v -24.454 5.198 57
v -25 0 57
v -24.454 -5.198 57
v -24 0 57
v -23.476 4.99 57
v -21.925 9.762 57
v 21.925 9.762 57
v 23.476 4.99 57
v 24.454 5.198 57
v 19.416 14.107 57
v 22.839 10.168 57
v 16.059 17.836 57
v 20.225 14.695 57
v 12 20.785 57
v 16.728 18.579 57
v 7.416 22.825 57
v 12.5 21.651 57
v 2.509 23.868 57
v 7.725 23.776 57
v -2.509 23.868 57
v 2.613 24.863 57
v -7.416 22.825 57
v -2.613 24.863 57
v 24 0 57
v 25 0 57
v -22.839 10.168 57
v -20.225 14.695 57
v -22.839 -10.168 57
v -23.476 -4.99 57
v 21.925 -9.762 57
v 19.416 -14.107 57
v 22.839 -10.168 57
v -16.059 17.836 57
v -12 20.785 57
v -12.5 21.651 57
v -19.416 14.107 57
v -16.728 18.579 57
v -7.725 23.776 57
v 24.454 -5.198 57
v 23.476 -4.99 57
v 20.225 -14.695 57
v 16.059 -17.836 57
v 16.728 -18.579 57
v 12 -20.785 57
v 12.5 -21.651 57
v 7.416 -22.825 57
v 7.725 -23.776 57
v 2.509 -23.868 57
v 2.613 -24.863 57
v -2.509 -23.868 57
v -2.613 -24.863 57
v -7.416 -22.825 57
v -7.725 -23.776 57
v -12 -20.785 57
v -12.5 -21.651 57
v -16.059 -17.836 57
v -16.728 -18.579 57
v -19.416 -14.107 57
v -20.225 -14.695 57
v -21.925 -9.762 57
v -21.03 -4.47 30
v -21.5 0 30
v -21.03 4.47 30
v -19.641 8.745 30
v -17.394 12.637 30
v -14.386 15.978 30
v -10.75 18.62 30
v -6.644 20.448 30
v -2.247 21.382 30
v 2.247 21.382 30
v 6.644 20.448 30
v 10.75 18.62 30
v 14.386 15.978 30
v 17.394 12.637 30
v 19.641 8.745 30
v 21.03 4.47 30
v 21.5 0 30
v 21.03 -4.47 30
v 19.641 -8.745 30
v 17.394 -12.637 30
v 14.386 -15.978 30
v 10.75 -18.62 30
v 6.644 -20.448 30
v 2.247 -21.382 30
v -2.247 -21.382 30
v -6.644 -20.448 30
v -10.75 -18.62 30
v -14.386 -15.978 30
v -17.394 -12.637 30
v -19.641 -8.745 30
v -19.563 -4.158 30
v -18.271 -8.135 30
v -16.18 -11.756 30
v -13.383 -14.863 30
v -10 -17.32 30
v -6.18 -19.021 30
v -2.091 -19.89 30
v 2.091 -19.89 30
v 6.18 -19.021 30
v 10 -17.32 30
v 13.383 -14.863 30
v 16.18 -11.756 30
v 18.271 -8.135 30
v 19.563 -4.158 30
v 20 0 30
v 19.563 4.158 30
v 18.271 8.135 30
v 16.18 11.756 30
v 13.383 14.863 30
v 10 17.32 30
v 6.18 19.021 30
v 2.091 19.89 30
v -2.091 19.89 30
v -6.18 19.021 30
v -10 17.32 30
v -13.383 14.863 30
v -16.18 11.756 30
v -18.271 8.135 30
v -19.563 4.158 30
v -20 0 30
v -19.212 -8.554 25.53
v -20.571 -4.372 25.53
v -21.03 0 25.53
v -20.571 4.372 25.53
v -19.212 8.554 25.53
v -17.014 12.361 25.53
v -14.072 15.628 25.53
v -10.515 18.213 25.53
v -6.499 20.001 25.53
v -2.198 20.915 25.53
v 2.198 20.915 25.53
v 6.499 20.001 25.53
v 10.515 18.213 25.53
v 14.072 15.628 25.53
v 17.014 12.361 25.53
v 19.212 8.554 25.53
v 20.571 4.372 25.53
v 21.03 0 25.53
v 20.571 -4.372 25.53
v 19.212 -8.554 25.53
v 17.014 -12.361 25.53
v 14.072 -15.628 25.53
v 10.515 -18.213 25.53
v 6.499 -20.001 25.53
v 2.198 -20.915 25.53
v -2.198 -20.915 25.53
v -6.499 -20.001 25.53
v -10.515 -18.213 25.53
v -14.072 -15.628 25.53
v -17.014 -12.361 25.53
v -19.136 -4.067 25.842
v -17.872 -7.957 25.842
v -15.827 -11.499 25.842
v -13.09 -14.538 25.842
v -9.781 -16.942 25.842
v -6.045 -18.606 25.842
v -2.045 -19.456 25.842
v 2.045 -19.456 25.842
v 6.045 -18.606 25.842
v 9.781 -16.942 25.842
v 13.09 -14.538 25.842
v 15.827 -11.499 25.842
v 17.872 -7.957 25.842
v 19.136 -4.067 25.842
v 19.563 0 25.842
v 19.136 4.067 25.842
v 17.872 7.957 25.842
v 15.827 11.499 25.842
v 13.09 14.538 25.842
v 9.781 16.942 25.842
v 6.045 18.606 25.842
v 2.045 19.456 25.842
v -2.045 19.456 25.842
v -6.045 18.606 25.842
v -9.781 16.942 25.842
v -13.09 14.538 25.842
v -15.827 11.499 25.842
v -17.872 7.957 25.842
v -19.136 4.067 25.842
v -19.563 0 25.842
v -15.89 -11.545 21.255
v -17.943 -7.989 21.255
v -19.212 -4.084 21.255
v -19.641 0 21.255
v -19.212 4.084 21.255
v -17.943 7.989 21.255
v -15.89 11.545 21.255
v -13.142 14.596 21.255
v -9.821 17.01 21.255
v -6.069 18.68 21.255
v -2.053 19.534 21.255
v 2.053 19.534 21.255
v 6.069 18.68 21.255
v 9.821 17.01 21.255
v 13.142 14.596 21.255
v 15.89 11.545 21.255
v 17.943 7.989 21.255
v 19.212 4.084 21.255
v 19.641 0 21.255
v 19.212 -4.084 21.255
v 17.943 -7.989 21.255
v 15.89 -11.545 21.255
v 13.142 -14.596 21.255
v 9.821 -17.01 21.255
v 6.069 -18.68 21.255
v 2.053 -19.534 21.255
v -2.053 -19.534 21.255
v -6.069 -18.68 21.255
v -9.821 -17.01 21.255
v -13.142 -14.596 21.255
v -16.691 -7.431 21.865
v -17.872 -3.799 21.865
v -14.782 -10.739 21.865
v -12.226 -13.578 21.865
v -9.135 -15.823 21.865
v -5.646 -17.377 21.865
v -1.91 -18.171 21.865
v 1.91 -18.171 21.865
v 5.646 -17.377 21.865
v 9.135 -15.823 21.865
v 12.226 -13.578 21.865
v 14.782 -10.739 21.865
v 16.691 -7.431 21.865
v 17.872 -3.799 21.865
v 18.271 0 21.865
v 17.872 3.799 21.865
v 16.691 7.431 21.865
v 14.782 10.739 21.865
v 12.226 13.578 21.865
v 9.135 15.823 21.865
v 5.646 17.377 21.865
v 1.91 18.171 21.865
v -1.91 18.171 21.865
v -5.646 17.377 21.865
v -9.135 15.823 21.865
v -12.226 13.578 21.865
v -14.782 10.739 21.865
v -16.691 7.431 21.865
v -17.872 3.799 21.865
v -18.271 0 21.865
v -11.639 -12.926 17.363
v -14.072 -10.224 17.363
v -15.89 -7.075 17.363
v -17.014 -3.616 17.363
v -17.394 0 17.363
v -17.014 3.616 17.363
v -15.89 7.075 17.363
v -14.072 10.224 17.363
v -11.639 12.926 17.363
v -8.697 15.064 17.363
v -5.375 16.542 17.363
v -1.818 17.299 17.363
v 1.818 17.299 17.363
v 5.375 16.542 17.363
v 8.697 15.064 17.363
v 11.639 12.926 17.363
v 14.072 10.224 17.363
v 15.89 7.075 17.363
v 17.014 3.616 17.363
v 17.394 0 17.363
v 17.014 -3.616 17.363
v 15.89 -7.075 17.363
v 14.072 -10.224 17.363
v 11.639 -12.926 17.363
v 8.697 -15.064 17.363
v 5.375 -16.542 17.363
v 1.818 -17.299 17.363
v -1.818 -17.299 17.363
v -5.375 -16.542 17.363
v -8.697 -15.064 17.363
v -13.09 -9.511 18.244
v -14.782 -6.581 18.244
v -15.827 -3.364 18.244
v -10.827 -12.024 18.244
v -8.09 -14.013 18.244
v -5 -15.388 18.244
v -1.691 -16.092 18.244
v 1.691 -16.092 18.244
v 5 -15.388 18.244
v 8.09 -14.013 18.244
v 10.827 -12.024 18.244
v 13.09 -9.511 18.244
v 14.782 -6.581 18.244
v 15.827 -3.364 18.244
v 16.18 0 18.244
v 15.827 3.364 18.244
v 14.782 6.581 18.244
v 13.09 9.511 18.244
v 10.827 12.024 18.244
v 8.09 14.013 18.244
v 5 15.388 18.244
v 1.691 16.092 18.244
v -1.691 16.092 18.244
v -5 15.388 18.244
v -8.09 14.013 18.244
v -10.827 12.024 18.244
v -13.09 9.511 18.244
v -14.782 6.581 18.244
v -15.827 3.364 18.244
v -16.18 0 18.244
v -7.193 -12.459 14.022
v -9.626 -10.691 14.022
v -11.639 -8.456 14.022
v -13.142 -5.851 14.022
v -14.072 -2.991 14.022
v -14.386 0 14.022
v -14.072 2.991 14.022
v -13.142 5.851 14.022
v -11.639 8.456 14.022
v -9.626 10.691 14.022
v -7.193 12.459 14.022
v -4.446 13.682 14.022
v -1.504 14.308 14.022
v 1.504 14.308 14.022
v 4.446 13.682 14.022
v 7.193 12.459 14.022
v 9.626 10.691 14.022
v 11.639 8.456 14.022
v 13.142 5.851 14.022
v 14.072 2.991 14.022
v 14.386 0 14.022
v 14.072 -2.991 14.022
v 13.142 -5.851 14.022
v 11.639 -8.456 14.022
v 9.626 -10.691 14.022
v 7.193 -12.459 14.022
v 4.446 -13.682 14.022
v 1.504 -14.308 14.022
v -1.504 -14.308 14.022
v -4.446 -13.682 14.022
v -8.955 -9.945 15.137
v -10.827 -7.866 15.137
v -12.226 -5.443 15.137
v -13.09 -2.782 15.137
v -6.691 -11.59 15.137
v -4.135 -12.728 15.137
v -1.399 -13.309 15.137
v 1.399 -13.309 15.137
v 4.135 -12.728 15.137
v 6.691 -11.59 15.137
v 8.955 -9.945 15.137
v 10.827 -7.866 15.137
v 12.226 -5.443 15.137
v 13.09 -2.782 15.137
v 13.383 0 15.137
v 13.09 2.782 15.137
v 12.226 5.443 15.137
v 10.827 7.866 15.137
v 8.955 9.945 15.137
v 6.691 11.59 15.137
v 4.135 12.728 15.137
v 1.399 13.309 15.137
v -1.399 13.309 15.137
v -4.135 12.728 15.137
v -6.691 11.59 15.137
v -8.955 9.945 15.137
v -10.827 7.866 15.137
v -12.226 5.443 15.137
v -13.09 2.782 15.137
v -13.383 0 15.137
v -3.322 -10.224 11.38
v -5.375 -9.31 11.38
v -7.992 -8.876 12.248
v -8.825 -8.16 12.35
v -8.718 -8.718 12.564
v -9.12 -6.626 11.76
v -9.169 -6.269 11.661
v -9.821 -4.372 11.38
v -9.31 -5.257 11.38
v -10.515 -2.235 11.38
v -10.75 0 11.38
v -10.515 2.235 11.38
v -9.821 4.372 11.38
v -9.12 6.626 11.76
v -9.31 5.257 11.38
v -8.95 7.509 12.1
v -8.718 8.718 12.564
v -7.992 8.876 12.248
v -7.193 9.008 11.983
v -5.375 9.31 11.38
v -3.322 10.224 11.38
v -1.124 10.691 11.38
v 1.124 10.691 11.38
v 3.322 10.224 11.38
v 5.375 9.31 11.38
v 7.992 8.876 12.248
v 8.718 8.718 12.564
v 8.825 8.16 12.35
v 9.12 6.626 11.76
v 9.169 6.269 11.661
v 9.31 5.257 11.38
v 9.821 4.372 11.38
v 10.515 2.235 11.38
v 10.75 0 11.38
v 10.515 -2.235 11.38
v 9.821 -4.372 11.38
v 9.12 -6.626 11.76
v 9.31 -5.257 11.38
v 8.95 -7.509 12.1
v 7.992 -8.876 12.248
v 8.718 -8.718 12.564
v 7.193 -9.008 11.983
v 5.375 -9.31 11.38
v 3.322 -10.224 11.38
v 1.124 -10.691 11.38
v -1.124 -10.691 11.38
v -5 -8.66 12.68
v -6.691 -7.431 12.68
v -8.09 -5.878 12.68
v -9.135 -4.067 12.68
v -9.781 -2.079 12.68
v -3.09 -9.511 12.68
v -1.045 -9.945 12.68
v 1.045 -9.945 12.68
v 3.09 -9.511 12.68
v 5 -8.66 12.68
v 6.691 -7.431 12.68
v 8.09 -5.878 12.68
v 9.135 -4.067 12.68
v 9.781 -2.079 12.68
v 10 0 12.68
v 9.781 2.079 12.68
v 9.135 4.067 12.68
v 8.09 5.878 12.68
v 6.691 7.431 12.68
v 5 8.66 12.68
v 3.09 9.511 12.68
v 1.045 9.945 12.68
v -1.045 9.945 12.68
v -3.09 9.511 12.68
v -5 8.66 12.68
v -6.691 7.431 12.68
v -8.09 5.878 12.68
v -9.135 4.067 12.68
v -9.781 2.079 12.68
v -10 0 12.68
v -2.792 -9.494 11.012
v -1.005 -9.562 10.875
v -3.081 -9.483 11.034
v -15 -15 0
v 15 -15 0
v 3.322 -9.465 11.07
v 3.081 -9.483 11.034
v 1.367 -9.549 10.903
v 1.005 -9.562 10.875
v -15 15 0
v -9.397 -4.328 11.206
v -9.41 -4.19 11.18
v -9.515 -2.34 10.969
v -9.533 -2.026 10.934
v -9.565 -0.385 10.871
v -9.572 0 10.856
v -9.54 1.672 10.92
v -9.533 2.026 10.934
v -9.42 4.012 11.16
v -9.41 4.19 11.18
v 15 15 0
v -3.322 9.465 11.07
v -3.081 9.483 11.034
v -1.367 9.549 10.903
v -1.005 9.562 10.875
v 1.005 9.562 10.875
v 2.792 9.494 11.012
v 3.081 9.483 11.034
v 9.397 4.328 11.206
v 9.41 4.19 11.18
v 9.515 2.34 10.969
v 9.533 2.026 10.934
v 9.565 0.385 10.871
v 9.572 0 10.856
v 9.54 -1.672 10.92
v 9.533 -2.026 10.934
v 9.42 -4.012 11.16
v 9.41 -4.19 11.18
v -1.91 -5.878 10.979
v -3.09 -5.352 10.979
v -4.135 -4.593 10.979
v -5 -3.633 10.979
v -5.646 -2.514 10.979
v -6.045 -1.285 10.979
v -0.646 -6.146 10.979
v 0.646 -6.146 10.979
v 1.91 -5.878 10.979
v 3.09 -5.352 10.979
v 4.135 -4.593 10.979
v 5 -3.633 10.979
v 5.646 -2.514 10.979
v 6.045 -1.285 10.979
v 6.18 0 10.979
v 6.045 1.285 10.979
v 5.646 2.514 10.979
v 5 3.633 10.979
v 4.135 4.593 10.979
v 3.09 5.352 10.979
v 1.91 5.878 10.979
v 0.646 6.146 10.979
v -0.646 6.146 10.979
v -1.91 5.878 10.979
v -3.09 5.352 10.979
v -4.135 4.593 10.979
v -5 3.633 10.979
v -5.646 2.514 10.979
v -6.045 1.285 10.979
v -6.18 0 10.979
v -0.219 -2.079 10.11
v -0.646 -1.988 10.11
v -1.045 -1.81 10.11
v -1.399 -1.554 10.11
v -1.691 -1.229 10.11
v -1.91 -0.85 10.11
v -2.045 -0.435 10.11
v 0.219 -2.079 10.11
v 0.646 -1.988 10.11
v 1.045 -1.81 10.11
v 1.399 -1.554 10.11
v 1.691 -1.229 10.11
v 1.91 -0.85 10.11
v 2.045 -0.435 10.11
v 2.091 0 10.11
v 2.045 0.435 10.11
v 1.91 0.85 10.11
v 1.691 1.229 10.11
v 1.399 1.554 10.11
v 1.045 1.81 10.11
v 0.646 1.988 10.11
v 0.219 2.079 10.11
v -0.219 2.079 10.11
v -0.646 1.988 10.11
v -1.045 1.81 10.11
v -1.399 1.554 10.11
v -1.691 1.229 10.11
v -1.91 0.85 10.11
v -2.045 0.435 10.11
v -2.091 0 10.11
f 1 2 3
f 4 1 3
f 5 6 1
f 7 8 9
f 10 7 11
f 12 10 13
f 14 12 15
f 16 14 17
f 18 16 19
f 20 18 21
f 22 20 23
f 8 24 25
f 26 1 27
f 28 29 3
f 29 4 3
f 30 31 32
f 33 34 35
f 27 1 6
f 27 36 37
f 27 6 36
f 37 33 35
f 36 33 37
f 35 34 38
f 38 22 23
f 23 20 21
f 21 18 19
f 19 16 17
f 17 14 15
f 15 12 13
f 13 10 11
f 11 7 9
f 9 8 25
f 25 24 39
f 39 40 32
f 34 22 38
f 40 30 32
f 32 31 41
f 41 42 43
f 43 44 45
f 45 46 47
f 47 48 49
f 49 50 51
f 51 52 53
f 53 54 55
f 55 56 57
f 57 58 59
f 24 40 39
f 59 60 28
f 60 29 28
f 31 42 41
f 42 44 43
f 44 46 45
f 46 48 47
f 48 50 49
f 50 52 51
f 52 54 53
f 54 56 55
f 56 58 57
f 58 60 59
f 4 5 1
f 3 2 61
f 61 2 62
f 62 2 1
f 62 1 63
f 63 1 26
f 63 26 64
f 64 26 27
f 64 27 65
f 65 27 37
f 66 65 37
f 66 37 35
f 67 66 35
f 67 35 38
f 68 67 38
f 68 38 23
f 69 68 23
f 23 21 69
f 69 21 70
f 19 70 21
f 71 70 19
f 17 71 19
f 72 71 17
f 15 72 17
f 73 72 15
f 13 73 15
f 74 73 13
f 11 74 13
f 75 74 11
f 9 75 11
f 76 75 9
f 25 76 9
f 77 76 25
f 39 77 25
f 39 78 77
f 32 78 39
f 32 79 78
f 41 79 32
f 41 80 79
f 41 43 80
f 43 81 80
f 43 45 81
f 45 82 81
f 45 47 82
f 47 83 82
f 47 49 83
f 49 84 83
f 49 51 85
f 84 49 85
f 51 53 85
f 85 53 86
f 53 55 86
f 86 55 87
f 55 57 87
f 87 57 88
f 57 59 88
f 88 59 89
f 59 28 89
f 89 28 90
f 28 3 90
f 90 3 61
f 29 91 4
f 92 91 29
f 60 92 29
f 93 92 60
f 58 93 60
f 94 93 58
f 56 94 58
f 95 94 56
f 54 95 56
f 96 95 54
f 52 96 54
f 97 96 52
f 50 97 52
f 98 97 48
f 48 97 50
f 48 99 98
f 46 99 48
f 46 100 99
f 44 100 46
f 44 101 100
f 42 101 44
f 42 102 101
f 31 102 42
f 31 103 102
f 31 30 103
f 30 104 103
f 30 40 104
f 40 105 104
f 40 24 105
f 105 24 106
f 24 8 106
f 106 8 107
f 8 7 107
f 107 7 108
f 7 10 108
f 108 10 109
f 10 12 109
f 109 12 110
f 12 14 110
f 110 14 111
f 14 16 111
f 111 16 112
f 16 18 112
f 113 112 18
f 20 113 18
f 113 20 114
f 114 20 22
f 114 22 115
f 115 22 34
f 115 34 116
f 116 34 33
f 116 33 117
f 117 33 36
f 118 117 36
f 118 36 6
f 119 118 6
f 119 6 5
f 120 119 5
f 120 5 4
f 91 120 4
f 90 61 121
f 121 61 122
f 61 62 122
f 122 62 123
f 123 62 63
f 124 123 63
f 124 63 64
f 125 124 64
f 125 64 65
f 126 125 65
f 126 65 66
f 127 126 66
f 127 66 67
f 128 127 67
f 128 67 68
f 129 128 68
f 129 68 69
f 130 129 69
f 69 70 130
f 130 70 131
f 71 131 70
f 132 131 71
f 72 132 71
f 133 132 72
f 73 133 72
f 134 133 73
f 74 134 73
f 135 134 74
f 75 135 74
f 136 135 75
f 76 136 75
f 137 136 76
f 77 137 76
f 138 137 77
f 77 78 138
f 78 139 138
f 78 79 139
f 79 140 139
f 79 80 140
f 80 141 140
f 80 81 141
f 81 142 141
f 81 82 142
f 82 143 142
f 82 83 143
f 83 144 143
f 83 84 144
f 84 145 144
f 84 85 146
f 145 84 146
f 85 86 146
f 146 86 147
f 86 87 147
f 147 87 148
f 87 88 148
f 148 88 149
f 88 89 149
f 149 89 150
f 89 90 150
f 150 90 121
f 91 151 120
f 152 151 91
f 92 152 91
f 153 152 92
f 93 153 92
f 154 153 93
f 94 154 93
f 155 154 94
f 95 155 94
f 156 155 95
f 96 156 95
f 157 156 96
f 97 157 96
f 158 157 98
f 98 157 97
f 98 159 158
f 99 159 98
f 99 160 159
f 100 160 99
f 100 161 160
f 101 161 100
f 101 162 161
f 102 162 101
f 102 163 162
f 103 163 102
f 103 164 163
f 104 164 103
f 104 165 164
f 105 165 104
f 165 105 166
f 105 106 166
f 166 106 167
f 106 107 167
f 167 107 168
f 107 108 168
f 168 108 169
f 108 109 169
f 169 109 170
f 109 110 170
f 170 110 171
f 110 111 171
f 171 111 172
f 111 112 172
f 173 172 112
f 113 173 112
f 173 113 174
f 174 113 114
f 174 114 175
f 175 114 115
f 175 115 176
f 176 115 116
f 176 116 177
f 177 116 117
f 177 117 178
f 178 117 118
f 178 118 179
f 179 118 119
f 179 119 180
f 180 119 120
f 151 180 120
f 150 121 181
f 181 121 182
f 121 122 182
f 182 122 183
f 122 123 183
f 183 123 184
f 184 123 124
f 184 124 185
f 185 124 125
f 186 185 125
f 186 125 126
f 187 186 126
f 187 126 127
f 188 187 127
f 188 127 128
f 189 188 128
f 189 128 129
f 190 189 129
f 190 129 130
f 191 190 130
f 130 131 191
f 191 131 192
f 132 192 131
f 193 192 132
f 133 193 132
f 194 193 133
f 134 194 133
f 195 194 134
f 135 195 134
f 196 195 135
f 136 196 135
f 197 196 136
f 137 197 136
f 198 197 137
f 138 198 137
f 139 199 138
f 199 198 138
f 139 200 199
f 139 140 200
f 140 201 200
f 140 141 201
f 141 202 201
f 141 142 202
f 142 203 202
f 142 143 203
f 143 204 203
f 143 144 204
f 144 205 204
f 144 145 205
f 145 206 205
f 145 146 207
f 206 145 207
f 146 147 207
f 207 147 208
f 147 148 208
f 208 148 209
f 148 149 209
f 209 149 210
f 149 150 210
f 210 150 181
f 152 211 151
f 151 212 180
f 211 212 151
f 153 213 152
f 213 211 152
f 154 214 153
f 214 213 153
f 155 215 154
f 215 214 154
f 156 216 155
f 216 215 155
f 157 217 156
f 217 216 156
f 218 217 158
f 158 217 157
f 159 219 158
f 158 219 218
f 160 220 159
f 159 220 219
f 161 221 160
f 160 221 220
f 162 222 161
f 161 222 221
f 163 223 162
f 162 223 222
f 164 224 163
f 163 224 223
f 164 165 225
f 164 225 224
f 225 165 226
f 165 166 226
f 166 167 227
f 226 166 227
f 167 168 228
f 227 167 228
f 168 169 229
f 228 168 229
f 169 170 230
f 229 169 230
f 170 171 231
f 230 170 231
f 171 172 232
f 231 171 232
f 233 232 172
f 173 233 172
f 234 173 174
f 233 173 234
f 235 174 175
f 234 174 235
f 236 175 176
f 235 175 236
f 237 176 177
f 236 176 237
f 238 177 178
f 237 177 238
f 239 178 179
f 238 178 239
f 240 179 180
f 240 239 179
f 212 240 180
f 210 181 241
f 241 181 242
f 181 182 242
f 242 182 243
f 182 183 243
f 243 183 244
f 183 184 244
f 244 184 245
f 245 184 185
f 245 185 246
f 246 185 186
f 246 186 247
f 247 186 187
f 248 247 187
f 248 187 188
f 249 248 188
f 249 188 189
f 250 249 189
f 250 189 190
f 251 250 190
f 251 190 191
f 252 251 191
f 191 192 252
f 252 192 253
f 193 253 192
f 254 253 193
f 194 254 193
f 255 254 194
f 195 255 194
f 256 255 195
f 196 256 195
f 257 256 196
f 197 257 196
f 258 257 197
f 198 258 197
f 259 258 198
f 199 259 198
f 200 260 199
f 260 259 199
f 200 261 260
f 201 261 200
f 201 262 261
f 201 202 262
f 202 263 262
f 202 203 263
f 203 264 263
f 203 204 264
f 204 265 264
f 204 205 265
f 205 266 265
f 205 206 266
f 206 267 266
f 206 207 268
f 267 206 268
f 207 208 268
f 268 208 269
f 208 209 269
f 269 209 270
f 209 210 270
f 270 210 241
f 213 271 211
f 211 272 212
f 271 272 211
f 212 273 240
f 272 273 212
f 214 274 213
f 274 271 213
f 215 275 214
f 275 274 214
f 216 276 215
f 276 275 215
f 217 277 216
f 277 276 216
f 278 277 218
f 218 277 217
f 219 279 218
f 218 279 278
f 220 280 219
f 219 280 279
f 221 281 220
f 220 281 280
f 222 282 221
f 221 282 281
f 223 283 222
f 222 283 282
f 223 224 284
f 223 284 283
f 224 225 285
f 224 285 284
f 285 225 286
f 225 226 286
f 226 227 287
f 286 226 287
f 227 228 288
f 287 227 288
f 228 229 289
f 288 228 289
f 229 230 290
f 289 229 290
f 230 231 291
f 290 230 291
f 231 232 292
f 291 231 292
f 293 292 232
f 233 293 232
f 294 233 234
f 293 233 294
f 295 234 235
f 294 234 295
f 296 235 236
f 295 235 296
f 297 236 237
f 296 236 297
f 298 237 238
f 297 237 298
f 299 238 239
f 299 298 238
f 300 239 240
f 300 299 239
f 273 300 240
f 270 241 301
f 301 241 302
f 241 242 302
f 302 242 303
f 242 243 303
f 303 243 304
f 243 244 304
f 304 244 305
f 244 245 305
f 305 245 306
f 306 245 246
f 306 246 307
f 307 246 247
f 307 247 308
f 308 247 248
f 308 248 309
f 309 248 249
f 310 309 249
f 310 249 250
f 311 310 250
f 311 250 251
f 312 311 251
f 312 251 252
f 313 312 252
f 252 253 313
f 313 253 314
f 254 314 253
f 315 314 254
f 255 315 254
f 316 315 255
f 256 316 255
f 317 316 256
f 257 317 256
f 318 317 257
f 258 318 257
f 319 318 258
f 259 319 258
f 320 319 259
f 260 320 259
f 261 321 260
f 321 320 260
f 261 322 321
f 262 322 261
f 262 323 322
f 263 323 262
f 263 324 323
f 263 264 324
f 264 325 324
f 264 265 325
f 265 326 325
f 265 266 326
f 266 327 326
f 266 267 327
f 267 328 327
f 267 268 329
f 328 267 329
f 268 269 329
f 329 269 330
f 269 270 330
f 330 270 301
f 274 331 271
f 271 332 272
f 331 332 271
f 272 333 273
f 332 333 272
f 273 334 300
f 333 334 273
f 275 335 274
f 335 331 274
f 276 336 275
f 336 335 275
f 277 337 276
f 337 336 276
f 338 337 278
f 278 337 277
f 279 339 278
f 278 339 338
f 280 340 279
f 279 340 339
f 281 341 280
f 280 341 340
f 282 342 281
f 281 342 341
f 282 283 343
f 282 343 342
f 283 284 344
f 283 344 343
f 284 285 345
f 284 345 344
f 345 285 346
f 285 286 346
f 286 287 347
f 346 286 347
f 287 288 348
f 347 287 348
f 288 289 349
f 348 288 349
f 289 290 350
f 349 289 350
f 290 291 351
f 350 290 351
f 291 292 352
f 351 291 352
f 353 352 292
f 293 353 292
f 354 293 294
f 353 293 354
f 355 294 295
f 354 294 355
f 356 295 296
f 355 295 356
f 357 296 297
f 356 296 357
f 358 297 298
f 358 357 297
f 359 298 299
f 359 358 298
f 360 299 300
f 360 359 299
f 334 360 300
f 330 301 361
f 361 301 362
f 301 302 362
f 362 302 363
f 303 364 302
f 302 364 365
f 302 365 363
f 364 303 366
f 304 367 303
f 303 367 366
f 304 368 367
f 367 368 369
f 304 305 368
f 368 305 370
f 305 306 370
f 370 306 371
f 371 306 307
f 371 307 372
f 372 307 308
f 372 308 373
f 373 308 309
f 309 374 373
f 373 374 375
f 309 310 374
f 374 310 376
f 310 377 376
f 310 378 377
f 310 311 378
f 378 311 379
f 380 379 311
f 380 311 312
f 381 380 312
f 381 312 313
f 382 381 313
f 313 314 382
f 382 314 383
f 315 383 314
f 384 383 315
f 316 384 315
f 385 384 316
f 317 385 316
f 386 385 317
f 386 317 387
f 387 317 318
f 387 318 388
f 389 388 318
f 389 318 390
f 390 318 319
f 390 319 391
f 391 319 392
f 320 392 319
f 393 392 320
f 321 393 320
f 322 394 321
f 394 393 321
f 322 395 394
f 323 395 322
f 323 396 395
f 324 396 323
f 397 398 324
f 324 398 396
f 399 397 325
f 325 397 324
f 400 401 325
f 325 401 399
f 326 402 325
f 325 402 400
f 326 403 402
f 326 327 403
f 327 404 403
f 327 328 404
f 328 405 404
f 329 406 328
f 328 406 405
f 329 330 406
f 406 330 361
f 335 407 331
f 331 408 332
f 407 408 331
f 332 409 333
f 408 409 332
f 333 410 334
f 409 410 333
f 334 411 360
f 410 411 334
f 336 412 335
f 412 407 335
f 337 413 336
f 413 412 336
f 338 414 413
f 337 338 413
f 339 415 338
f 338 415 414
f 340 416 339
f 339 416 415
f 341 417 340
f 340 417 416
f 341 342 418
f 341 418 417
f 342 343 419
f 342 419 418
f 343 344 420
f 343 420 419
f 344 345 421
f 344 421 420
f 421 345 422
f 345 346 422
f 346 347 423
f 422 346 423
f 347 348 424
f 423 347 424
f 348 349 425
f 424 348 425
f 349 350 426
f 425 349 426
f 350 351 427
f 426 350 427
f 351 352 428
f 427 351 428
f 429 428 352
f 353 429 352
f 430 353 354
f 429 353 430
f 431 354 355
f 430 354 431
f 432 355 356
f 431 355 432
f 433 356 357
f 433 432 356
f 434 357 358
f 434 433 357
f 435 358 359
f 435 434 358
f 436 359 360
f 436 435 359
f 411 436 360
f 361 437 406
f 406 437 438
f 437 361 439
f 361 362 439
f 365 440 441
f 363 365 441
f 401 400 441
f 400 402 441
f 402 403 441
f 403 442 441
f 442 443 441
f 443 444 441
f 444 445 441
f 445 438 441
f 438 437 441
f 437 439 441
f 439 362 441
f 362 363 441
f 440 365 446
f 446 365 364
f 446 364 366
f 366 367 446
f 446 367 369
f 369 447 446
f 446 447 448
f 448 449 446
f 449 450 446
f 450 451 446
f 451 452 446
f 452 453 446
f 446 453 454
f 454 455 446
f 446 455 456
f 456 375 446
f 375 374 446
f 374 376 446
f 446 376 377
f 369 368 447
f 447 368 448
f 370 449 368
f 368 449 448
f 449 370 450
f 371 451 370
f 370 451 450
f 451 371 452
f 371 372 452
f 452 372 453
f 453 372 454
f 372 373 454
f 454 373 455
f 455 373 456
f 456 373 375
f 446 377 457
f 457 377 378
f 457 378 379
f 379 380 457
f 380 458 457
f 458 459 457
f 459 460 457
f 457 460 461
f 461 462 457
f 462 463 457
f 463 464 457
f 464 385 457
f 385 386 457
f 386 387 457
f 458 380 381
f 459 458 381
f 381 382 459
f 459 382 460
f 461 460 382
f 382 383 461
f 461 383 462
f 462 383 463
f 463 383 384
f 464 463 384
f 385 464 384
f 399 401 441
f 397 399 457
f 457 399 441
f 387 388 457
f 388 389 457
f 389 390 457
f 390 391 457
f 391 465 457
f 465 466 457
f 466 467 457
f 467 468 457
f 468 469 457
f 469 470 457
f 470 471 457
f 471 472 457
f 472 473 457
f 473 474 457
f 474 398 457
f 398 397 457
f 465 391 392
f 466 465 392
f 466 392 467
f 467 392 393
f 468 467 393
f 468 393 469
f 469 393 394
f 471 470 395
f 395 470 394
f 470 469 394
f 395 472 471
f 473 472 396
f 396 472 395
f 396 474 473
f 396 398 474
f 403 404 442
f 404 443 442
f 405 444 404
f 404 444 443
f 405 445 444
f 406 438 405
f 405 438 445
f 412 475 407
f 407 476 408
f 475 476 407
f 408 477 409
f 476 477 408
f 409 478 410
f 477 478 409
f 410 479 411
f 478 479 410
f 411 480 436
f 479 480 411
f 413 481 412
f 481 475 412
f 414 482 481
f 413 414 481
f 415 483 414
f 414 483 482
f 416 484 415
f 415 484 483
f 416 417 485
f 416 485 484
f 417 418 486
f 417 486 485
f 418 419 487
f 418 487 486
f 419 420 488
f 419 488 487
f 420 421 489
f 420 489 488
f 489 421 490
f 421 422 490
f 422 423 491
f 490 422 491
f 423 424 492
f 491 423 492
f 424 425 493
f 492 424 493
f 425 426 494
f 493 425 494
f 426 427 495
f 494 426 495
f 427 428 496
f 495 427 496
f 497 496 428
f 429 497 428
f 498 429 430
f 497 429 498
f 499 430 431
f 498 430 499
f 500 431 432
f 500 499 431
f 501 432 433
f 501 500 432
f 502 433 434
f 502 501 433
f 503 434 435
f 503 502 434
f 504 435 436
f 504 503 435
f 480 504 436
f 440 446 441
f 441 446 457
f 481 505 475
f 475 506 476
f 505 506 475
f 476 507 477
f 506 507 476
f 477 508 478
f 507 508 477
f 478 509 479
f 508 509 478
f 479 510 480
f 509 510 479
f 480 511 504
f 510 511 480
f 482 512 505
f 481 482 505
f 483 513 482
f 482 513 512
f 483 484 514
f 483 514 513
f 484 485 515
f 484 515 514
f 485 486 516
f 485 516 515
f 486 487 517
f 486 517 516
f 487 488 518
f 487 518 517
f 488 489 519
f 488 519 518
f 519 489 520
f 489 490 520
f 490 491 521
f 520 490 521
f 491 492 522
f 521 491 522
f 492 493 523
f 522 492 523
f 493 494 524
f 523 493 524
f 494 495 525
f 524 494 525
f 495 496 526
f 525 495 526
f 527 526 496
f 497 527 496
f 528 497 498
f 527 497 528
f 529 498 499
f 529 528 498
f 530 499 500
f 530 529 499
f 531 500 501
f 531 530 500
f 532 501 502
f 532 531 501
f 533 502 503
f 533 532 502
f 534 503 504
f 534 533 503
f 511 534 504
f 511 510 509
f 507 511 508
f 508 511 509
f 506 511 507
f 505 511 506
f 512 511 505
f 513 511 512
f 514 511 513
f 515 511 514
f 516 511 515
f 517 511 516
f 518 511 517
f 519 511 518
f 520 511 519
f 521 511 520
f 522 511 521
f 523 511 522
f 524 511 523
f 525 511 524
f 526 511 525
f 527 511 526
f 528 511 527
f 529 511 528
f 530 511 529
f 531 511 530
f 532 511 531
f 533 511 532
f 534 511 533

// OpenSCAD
// Mini Goblet 


difference() {
	union(){
	translate([0,0,30]) cylinder(h = 27, r1 = 21.5, r2 = 25);
	translate([0,0,30]) sphere(r = 21.5);
	polyhedron(
  points=[ [15,15,0],[15,-15,0],[-15,-15,0],[-15,15,0],
		 // the four points at base

           [0,0,30]  ],  
         // the apex point 

  		   triangles=[ [0,1,4],[1,2,4],[2,3,4],[3,0,4],
         // each triangle side

          [1,0,3],[2,1,3] ]                         
		// two triangles for square base
 	);
	}


	union(){
		translate([0,0,30]) cylinder(h = 27, r1 = 20, r2 = 24);
		translate([0,0,30]) sphere(r = 20); 
	}
}

// 43
// 50

// 40
// 44
